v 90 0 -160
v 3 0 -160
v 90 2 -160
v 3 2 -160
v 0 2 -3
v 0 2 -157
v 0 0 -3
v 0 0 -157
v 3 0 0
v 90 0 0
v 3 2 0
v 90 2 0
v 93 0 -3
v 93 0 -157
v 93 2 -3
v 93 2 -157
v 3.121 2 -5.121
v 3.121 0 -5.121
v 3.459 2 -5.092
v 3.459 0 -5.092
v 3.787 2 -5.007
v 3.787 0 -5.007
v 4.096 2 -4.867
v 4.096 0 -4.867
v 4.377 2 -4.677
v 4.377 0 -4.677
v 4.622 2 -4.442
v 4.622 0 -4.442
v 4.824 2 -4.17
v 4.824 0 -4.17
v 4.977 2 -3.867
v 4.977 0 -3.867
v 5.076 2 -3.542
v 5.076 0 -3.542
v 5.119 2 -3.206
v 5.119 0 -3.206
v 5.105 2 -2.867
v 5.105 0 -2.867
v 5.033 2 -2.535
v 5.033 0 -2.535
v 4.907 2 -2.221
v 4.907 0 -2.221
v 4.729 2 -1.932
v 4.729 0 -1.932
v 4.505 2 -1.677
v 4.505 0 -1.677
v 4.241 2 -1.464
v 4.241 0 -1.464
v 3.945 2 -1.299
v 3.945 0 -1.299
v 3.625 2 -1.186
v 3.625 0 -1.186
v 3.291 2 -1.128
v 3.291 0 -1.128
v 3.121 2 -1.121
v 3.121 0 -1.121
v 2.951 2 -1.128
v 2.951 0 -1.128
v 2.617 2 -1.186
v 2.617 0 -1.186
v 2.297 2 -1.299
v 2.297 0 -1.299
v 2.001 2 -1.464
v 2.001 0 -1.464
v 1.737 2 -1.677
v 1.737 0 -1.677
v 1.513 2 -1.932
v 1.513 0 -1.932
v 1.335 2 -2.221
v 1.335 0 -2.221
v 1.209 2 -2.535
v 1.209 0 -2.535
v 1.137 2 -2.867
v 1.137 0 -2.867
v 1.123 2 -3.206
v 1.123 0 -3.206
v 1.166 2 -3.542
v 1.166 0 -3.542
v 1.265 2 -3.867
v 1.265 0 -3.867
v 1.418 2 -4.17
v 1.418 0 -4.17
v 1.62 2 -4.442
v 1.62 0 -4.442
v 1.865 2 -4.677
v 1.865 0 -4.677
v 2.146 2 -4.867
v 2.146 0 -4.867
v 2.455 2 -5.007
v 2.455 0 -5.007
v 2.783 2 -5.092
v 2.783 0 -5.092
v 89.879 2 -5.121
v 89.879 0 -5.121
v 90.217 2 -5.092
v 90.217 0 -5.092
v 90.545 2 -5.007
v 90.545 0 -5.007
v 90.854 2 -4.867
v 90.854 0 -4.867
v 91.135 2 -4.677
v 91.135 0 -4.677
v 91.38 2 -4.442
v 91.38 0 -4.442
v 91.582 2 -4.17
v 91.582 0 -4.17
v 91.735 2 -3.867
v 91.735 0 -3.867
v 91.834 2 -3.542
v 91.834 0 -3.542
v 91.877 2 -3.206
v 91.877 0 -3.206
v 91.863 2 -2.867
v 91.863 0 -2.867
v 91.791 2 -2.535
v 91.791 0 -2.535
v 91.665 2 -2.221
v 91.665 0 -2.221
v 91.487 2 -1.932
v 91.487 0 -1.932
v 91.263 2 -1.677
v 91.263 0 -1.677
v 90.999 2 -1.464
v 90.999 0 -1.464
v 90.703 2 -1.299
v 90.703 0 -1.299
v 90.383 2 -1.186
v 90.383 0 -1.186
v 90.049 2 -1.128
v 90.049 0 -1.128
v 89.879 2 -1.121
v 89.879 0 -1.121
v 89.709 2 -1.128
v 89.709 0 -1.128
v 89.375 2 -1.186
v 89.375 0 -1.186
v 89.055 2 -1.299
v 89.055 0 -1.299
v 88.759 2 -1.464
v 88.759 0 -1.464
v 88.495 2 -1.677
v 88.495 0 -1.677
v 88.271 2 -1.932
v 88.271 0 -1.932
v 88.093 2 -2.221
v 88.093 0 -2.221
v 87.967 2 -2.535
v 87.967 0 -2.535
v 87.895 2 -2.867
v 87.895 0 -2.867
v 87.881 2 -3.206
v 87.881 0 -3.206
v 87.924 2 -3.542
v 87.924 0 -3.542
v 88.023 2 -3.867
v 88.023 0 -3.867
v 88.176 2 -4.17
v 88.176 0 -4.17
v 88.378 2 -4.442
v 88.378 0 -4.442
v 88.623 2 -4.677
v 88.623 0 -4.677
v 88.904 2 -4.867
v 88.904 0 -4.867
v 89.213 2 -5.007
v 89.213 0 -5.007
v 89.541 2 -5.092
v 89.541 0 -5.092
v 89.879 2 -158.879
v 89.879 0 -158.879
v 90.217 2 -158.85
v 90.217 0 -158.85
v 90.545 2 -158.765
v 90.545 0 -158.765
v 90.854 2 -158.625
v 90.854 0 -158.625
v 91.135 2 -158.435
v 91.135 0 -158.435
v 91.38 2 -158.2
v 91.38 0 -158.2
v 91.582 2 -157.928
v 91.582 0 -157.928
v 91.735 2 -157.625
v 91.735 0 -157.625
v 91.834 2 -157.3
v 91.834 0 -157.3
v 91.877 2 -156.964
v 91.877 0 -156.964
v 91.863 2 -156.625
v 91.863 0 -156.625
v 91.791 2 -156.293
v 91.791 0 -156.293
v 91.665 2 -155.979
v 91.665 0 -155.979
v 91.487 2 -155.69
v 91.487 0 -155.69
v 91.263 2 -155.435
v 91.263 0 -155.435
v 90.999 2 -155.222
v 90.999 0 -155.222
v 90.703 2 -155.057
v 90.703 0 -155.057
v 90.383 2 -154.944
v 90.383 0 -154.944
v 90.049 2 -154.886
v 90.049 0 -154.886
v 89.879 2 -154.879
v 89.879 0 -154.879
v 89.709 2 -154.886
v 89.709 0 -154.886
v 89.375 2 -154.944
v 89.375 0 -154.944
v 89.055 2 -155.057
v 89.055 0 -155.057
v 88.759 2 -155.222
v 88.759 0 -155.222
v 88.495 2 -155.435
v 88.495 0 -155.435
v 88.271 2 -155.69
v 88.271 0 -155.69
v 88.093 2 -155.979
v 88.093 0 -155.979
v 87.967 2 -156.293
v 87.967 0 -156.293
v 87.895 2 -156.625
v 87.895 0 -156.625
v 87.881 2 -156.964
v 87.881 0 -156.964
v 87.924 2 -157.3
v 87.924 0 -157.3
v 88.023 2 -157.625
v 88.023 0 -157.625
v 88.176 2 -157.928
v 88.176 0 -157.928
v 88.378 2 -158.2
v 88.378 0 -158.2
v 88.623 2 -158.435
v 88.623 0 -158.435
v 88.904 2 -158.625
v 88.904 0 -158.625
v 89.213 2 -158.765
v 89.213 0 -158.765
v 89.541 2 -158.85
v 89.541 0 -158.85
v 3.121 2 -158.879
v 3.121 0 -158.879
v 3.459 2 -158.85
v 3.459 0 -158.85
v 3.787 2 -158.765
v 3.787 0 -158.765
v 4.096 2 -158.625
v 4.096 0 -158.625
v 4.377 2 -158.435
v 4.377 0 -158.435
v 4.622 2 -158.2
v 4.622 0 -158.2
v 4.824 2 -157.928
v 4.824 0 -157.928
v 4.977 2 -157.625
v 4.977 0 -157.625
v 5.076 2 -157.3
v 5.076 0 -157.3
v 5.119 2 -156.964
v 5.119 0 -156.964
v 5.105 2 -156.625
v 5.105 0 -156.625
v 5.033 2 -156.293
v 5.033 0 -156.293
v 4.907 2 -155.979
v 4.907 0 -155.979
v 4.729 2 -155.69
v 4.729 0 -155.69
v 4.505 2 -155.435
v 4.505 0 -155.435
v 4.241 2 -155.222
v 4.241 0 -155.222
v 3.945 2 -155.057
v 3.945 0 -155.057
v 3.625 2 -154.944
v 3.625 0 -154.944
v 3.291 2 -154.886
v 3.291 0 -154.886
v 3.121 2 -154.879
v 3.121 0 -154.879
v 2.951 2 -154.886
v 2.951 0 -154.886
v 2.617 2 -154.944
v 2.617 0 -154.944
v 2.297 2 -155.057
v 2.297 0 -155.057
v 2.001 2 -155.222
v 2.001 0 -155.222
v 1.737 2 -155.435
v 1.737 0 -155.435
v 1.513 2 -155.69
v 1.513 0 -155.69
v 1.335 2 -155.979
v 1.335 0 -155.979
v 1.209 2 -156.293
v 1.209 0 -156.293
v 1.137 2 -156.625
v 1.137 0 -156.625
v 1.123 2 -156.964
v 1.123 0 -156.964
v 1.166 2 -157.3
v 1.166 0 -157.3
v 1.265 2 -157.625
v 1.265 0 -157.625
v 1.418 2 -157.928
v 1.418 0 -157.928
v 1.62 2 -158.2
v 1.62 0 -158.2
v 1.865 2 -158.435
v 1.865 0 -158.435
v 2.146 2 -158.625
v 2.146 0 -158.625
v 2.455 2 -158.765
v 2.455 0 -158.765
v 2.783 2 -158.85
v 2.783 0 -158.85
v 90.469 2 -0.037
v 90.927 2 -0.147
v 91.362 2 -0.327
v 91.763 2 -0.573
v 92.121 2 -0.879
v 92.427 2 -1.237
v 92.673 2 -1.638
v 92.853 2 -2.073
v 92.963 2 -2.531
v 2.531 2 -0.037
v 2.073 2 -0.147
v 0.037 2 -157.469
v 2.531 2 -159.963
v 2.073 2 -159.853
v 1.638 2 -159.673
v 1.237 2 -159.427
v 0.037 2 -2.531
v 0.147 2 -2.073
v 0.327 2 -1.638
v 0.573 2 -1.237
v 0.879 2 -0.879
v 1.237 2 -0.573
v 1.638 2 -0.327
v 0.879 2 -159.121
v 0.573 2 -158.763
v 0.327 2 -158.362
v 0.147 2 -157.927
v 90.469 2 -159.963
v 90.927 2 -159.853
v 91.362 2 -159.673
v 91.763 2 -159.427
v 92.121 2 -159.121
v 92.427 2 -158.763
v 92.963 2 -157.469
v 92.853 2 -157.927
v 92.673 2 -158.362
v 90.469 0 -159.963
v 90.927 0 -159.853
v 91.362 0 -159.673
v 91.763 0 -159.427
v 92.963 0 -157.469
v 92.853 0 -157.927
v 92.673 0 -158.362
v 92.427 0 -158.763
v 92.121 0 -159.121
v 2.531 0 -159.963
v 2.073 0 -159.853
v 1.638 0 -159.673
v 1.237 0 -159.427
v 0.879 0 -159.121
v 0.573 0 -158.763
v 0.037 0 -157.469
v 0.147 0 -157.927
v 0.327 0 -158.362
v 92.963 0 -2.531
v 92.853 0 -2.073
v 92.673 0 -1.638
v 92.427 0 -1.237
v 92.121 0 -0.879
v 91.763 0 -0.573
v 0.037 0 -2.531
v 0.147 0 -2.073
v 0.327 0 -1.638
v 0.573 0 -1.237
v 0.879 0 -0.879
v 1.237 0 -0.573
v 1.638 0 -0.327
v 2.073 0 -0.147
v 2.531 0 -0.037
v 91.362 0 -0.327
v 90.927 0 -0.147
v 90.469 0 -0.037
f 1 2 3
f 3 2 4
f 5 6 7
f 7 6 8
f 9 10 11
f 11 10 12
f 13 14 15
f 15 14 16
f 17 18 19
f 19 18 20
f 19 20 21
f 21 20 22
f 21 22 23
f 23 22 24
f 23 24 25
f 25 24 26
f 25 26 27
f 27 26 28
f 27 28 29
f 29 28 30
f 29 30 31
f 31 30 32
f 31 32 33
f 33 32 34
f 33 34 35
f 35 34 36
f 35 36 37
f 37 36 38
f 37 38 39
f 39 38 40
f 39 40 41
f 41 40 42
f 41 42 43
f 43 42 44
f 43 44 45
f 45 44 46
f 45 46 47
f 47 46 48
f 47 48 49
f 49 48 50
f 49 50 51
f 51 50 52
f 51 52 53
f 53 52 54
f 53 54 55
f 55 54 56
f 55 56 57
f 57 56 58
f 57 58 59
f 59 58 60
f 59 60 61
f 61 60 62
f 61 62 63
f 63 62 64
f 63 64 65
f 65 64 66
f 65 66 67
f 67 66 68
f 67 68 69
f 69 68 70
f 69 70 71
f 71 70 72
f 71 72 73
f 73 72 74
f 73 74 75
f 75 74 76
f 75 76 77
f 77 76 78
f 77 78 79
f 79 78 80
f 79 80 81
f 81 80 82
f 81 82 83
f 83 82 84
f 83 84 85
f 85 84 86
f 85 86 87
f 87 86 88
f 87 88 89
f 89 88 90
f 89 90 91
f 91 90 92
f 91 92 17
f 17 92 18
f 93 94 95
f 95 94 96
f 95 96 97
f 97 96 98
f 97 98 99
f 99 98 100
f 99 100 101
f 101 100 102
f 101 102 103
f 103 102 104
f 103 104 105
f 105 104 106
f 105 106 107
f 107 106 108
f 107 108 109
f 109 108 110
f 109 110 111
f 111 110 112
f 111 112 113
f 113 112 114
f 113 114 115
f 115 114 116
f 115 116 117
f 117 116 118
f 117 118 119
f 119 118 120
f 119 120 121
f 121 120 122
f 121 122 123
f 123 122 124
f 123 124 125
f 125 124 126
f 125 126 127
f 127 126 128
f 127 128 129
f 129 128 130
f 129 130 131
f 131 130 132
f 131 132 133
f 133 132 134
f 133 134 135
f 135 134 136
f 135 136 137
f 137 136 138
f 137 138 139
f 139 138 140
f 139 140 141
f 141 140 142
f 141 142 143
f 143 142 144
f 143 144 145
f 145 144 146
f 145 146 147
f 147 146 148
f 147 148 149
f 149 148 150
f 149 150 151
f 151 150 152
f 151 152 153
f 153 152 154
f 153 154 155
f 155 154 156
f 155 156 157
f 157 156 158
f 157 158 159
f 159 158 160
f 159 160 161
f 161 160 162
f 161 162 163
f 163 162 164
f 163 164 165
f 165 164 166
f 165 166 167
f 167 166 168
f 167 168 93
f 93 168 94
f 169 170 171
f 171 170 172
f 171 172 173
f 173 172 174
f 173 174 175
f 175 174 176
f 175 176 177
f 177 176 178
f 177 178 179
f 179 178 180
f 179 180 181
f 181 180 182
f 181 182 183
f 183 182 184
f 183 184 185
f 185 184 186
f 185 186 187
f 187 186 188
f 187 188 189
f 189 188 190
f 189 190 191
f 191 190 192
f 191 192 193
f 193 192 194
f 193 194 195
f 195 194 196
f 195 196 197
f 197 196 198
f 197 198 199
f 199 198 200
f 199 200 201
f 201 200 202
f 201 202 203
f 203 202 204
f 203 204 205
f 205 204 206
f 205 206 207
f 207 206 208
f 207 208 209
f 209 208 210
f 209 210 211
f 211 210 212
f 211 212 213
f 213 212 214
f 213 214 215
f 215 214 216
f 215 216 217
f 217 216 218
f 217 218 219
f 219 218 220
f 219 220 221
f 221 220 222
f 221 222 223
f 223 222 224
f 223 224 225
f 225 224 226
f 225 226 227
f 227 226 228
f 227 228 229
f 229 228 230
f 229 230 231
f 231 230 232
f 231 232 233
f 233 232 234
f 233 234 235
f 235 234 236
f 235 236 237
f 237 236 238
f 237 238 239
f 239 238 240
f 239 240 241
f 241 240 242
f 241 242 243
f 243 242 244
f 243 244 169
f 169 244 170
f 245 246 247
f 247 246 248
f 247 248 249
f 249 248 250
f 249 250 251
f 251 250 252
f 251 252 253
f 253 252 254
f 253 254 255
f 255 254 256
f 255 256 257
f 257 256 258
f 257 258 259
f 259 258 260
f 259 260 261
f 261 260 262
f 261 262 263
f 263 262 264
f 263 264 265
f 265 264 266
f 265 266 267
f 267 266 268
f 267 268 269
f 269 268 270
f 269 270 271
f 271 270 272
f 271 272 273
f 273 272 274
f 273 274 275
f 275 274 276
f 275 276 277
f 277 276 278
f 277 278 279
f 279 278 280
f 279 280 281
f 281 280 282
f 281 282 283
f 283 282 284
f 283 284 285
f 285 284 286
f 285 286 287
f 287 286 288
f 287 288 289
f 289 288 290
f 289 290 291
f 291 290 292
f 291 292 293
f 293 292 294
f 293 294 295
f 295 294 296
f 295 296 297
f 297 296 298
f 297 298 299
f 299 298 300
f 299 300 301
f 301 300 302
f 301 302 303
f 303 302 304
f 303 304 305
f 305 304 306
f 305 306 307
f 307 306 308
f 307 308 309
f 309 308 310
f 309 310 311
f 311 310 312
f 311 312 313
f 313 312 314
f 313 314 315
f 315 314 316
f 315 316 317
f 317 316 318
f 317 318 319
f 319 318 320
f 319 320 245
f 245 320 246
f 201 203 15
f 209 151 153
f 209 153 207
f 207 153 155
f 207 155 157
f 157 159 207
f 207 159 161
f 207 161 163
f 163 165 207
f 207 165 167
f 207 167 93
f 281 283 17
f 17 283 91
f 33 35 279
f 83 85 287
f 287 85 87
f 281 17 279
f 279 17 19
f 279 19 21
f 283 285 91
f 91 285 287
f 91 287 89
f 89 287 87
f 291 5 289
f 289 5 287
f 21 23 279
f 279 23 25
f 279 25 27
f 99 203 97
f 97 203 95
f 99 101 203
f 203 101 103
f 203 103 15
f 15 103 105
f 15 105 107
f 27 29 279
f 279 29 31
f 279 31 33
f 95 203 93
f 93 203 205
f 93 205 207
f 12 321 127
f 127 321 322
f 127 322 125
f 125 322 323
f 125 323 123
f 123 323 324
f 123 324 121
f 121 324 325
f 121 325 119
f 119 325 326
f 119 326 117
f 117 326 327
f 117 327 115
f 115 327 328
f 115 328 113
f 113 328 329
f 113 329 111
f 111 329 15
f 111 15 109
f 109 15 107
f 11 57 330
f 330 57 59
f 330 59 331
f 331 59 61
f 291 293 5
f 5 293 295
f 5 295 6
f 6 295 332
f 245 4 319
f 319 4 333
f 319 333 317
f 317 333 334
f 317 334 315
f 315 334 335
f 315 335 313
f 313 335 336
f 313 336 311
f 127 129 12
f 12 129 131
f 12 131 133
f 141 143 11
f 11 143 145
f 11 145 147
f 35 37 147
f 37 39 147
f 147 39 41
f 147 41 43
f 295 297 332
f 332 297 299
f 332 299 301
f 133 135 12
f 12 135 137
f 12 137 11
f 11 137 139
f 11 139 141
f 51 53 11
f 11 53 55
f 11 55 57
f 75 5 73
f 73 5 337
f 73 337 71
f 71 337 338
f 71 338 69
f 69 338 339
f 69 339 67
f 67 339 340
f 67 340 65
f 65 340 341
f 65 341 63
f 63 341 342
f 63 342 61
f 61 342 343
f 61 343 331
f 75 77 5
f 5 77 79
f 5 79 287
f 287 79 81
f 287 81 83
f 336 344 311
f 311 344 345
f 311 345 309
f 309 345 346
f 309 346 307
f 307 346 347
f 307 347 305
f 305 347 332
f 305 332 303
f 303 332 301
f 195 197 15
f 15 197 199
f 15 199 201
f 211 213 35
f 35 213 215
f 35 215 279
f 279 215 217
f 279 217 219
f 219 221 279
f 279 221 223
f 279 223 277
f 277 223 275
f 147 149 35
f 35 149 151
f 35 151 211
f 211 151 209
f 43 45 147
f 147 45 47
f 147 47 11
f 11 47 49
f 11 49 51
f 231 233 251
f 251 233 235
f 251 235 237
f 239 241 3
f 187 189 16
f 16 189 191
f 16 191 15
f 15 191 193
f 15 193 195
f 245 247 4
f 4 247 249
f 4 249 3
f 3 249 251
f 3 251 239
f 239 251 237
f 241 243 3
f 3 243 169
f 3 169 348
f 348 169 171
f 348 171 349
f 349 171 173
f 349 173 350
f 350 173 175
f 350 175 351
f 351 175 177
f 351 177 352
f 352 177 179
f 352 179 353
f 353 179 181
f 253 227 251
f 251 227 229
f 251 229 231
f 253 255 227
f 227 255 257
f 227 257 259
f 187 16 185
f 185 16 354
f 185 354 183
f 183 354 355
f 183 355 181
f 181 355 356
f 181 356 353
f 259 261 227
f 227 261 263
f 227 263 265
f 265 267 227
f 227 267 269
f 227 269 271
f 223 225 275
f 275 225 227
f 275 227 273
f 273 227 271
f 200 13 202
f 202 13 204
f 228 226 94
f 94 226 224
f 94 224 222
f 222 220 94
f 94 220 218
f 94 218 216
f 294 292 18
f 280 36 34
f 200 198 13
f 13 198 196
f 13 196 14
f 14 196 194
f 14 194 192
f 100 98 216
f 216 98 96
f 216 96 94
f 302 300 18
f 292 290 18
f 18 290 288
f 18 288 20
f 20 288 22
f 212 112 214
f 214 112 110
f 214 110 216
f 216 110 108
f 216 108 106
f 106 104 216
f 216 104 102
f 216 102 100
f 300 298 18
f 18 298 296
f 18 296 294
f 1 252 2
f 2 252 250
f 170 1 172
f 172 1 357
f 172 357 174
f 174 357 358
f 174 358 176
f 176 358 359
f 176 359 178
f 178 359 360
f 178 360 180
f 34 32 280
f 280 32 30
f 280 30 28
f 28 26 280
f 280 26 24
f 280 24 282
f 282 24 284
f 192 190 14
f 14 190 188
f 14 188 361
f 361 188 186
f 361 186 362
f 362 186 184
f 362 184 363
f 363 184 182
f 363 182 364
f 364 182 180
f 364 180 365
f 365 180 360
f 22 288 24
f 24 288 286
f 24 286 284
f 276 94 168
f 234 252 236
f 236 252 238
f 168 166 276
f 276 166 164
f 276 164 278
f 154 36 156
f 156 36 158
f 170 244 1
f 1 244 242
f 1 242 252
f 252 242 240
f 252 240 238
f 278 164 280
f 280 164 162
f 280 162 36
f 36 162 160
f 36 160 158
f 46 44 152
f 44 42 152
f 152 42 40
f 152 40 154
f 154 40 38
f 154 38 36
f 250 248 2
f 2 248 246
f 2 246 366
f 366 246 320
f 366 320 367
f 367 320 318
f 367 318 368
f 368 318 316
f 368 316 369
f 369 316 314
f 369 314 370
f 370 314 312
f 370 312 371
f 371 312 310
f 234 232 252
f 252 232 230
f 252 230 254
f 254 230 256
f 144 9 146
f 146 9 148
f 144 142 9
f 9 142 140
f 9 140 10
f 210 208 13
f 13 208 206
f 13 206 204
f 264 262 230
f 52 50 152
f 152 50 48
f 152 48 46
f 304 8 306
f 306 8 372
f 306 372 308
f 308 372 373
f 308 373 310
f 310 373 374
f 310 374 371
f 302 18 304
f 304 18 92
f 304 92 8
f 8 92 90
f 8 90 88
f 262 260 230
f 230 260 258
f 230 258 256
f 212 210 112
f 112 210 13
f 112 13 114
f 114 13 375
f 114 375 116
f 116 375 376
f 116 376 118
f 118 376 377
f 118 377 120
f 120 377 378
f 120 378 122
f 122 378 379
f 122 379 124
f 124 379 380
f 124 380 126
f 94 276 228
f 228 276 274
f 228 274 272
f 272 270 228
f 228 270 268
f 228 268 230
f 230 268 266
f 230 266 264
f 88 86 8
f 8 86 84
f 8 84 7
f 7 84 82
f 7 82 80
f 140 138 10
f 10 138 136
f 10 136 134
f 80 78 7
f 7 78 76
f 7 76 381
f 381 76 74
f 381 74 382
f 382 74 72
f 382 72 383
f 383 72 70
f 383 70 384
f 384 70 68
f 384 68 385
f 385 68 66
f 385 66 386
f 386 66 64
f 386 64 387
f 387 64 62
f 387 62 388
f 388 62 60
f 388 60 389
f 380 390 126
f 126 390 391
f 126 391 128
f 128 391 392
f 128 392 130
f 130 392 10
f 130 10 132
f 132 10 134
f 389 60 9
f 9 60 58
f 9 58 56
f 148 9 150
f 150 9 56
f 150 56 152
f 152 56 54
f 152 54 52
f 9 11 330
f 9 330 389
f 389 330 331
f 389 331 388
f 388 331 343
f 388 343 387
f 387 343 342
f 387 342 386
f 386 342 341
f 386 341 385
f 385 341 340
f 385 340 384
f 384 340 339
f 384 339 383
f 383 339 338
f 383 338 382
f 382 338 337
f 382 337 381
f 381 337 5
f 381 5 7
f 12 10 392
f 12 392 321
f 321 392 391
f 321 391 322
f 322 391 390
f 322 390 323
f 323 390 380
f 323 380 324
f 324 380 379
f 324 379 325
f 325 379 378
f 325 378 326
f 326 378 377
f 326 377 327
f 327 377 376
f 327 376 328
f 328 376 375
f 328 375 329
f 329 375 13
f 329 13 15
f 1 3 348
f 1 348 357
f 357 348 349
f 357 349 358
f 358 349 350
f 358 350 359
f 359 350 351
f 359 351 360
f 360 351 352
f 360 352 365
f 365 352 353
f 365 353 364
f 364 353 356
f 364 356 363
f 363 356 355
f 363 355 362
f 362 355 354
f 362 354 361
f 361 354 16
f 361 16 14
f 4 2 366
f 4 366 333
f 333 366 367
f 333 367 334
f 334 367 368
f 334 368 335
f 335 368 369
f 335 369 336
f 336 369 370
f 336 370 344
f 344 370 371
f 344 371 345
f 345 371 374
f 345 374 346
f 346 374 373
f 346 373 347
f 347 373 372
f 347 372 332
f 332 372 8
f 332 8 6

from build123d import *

# Parameters (mm, degrees)
SKETCH2_R           = 2
BOSS_EXTRUDE1_DEPTH = 2
FILLET13_R          = 3


with BuildPart() as part:
    # Sketch2 → Boss-Extrude1 (new body)
    with BuildSketch(Plane(origin=(0, 0, 0), x_dir=(1, 0, 0), z_dir=(0, 1, 0))):
        Polygon((0, 37.5), (0, 0), (59, 0), (93, 0), (93, 160), (0, 160), (0, 137.5), align=None)
        with Locations(Location((3.12102555, 3.12102555, 0), (0, 0, 270))):
            Circle(SKETCH2_R, mode=Mode.SUBTRACT)
        with Locations(Location((89.87897445, 3.12102555, 0), (0, 0, 270))):
            Circle(SKETCH2_R, mode=Mode.SUBTRACT)
        with Locations(Location((3.12102555, 156.87897445, 0), (0, 0, 270))):
            Circle(SKETCH2_R, mode=Mode.SUBTRACT)
        with Locations(Location((89.87897445, 156.87897445, 0), (0, 0, 270))):
            Circle(SKETCH2_R, mode=Mode.SUBTRACT)
    extrude(amount=BOSS_EXTRUDE1_DEPTH)

    # Fillet13
    fillet13_edges = [part.edges().sort_by_distance(p)[0] for p in [
        (93, 1, -160),
        (93, 1, 0),
        (0, 1, 0),
        (0, 1, -160),
    ]]
    fillet(fillet13_edges, radius=FILLET13_R)


solid = part.part
